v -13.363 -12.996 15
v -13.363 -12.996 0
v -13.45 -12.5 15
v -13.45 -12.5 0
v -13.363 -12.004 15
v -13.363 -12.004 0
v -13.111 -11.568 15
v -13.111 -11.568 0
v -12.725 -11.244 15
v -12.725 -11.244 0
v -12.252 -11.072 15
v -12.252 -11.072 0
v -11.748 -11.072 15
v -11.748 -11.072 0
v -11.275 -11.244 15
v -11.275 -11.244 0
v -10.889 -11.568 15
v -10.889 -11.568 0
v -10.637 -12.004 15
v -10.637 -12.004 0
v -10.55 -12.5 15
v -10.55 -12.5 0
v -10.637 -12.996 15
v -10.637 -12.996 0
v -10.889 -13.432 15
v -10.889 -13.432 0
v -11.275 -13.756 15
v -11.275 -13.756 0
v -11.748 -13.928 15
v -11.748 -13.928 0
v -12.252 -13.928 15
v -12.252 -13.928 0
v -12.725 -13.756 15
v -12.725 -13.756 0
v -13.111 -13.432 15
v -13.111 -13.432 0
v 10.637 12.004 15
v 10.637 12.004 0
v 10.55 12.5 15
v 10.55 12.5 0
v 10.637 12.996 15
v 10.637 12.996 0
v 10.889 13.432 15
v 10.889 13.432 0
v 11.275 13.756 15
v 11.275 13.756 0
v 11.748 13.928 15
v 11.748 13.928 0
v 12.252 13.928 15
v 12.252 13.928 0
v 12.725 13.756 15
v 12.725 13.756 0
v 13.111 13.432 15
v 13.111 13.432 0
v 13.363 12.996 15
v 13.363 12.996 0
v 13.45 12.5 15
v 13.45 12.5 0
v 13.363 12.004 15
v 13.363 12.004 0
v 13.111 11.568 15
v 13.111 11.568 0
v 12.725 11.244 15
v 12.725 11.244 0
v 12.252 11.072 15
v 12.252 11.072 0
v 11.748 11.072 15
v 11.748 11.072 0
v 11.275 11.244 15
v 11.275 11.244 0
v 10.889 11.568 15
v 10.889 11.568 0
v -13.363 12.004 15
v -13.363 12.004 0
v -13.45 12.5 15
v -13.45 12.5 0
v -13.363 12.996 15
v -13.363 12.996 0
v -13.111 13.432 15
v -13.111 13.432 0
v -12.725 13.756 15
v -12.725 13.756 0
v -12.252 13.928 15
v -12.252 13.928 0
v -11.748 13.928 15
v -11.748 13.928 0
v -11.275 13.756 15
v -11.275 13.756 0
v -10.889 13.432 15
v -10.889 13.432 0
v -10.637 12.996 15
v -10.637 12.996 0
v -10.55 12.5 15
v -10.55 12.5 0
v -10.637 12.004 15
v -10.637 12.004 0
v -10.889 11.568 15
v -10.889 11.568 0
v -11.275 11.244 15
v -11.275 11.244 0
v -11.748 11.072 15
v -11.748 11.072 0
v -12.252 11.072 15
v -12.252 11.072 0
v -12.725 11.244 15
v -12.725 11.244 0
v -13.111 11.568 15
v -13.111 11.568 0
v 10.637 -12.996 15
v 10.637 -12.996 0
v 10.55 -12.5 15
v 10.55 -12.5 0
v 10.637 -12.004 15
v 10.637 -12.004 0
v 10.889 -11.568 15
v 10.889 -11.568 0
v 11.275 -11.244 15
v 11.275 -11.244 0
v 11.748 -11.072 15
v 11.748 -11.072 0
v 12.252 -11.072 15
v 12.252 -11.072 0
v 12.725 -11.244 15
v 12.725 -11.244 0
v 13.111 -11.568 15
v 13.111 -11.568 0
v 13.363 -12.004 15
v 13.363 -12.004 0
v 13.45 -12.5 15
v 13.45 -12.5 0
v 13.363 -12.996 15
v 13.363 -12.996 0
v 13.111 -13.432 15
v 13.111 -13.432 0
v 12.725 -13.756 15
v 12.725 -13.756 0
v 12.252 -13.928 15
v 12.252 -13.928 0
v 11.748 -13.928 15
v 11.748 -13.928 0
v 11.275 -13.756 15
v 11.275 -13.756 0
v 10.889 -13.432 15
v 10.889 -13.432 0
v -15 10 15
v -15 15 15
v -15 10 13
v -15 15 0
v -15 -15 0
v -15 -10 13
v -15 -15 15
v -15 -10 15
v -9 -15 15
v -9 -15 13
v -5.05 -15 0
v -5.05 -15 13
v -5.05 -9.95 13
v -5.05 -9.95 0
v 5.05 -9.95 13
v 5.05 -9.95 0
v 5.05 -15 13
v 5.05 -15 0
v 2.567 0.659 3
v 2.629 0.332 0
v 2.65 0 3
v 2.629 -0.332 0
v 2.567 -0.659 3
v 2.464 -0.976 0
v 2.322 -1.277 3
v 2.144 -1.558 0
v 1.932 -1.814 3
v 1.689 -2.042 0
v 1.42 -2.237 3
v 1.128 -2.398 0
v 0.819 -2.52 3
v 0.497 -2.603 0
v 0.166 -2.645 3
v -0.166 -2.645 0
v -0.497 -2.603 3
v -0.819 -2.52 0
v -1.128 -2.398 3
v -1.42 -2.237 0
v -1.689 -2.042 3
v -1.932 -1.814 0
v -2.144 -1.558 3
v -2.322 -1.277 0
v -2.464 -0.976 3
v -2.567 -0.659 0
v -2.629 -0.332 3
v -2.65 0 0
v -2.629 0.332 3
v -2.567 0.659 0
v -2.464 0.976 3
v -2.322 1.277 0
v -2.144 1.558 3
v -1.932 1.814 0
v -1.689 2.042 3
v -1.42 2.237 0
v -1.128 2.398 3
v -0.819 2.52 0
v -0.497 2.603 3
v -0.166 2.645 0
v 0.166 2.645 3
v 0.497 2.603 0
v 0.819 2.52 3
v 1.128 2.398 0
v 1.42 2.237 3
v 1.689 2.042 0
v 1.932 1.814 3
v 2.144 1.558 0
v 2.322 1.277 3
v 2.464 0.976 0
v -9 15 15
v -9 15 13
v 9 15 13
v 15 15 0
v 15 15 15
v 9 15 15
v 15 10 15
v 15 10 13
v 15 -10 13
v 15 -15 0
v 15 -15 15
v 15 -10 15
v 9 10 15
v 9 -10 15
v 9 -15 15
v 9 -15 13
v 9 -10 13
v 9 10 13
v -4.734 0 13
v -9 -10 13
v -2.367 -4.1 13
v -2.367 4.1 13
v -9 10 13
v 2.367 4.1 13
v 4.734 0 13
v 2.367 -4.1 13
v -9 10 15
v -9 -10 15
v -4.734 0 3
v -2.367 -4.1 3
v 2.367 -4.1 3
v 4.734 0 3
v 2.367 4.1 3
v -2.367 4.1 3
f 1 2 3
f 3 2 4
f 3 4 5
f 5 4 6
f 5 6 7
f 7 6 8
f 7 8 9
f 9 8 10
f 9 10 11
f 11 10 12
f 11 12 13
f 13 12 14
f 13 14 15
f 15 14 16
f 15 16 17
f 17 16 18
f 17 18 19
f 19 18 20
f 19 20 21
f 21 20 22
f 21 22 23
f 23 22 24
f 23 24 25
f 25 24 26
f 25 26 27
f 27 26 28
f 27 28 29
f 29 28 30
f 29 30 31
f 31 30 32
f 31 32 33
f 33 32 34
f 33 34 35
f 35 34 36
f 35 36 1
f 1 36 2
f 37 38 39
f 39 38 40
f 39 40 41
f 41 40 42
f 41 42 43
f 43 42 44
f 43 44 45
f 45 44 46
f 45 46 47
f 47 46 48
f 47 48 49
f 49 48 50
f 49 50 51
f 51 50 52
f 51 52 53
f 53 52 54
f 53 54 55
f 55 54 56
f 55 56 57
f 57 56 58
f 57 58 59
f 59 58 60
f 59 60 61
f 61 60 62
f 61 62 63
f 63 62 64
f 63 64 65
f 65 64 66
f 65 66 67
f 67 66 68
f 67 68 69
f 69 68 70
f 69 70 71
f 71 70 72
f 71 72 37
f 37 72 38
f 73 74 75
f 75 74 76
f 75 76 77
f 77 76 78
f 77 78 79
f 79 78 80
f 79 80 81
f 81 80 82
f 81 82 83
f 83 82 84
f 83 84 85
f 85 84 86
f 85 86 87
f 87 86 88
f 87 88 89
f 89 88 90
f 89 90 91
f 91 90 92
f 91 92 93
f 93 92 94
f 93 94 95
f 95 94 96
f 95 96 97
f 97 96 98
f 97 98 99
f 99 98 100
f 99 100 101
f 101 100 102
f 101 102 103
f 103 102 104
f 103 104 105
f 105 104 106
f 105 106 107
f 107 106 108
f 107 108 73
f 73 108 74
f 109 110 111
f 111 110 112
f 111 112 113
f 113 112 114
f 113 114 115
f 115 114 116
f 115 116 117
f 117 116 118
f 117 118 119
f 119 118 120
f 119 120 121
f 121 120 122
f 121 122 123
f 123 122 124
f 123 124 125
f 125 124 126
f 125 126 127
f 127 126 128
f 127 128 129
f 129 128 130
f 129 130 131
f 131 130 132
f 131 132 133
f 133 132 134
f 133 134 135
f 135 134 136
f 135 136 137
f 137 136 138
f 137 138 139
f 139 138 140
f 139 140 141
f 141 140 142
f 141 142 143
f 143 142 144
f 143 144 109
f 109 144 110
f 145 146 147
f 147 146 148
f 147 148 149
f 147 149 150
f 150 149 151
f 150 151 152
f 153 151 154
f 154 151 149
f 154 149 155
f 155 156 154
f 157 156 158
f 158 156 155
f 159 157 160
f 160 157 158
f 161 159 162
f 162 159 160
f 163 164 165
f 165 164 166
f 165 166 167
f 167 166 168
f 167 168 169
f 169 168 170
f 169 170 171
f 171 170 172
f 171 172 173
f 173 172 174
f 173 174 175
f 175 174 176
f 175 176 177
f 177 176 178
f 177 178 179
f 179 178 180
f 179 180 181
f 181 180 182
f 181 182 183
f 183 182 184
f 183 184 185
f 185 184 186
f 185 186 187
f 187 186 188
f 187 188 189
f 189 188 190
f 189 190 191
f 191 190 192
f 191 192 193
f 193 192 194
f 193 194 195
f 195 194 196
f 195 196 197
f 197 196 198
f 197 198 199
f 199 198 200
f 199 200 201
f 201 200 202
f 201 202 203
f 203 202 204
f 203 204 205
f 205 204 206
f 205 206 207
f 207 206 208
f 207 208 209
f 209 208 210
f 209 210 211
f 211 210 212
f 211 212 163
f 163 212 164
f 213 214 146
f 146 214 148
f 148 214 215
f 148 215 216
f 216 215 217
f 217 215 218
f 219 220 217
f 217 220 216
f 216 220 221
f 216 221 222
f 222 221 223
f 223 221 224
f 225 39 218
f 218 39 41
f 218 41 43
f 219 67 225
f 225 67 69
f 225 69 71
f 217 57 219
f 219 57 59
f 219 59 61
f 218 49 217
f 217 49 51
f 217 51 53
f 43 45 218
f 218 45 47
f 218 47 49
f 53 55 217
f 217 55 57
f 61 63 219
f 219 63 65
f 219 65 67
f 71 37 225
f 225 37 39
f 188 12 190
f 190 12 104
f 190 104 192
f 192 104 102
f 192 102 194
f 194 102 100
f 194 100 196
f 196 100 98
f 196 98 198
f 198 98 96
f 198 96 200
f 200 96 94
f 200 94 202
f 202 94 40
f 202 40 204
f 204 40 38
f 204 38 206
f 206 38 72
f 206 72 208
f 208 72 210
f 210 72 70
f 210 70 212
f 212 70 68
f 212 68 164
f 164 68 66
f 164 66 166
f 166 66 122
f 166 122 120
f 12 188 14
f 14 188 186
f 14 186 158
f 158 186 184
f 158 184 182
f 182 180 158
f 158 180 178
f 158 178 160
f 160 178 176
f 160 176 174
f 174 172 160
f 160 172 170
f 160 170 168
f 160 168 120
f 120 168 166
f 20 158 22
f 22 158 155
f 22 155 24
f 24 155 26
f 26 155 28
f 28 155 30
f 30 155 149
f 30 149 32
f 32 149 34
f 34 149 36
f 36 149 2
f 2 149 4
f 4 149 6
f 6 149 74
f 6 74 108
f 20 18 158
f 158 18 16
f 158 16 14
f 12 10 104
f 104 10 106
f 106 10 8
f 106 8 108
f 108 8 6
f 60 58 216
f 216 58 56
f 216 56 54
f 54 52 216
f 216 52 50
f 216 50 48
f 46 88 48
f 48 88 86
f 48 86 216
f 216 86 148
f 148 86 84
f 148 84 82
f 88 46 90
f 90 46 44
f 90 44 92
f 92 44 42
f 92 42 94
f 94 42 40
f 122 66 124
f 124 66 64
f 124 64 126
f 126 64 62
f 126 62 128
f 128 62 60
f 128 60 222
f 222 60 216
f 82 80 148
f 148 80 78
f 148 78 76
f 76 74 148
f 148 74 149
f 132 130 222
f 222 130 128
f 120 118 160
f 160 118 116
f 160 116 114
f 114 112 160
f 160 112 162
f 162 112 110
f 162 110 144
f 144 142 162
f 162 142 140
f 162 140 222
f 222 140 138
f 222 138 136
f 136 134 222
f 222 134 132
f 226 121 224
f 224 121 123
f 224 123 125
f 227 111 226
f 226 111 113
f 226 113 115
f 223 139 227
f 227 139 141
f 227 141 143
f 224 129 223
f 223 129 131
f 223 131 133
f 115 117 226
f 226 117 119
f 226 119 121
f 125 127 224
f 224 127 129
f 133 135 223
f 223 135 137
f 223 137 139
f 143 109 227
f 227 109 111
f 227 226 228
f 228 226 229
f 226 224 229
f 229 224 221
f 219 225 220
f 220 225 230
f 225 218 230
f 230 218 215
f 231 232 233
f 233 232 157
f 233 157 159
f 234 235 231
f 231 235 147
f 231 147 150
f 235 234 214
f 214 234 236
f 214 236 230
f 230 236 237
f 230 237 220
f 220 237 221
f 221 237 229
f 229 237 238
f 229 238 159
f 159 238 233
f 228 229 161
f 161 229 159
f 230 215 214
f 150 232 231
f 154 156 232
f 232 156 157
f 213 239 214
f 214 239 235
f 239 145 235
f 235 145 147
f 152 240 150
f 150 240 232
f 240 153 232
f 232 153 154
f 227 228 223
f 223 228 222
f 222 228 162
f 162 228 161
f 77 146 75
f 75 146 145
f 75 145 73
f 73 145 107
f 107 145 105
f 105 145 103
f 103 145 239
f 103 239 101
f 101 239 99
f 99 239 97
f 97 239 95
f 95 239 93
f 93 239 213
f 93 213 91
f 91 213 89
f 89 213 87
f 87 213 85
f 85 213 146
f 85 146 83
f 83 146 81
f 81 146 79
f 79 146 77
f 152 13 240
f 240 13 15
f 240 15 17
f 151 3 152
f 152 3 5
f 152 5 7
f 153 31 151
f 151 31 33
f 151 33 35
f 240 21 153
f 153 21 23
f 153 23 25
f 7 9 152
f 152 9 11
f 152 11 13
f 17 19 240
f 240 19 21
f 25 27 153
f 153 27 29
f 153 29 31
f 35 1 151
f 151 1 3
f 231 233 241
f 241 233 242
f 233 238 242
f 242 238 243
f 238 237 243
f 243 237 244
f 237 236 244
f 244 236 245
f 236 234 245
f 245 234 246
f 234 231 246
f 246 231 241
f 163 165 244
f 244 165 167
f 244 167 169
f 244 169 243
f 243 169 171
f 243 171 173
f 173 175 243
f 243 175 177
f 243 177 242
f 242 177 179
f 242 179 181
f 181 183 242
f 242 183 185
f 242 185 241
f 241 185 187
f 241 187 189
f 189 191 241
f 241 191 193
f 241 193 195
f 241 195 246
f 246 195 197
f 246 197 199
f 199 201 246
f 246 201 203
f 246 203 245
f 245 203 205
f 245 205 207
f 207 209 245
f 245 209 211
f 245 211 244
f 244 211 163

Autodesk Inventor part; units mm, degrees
ref_plane "YZ Plane" through (0, 0, 0) normal (1, 0, 0) x (0, 1, 0)
ref_plane "XZ Plane" through (0, 0, 0) normal (0, 1, 0) x (-1, 0, 0)
ref_plane "XY Plane" through (0, 0, 0) normal (0, 0, 1) x (1, 0, 0)
sketch "Sketch1" plane through (0, 0, 0) normal (0, 0, 1) x (1, 0, 0)
  line L0 (-15, -15) -> (-15, 15)
  line L1 (-15, 15) -> (15, 15)
  line L2 (15, 15) -> (15, -15)
  line L3 (15, -15) -> (-15, 15) construction
  line L4 (-15, -15) -> (15, 15) construction
  line L5 (0, 0) -> (8.0802, 0) construction
  line L6 (0, 0) -> (0, 7.2946) construction
  line L7 (-5.05, -20.05) -> (5.05, -20.05)
  line L8 (5.05, -20.05) -> (5.05, -9.95)
  line L9 (5.05, -9.95) -> (-5.05, -9.95)
  line L10 (-5.05, -9.95) -> (-5.05, -20.05)
  line L11 (-5.05, -20.05) -> (5.05, -9.95) construction
  line L12 (5.05, -20.05) -> (-5.05, -9.95) construction
  line L13 (15, -15) -> (5.05, -15)
  line L14 (-5.05, -15) -> (-15, -15)
  point P0 (-12, -12.5)
  point P1 (12, -12.5)
  point P2 (-12, 12.5)
  point P3 (12, 12.5)
  point P4 (0, -15)
  dimension "d0" = 30
  dimension "d1" = 30
  dimension "d4" = 24
  dimension "d7" = 25
  dimension "d10" = 10.1
  dimension "d11" = 10.1
extrude "Extrusion1" add sketch "Sketch1" along normal blind 15 contours L0 L1 L2 L13 L8 L9 L10 L14
hole "Hole1" at (12, 12.5, 0) at (-12, 12.5, 0) at (-12, -12.5, 0) at (12, -12.5, 0) direction (0, 0, 1) diameter 2.9 end through all
sketch "Sketch2" plane through (0, 0, 0) normal (0, 0, -1) x (-1, 0, 0)
  point P0 (0, 0)
  point P1 (0, 0)
hole "Hole2" at (0, 0, 0) direction (0, 0, 1) diameter 5.3 end through all clearance for "Flat Head Machine Screw" size "M5" standard "Ansi Metric M Profile"
sketch "Sketch3" plane through (0, 0, 15) normal (0, 0, 1) x (1, 0, 0)
  line L0 (15, 15) -> (-15, 15) projected
  line L1 (-15, 15) -> (-9, 15)
  line L2 (-9, 15) -> (-9, 10)
  line L3 (-9, 10) -> (-15, 10)
  line L4 (-15, 10) -> (-15, 15)
  line L5 (15, -15) -> (15, 15) projected
  line L6 (15, 15) -> (9, 15)
  line L7 (9, 15) -> (9, 10)
  line L8 (9, 10) -> (15, 10)
  line L9 (15, 10) -> (15, 15)
  line L10 (-15, -15) -> (-5.05, -15) projected
  line L11 (-15, -15) -> (-9, -15)
  line L12 (-9, -15) -> (-9, -10)
  line L13 (-9, -10) -> (-15, -10)
  line L14 (-15, -10) -> (-15, -15)
  line L15 (15, -15) -> (9, -15)
  line L16 (9, -15) -> (9, -10)
  line L17 (9, -10) -> (15, -10)
  line L18 (15, -10) -> (15, -15)
  circle A0 centre (0, 0) radius 2.65 projected
  circle A1 centre (-12, -12.5) radius 1.45 projected
  circle A2 centre (12, 12.5) radius 1.45 projected
  circle A3 centre (-12, 12.5) radius 1.45 projected
  circle A4 centre (12, -12.5) radius 1.45 projected
  line L19 (15, 15) -> (-15, 15) projected
  line L20 (-15, 15) -> (-15, -15) projected
  line L21 (-15, -15) -> (-5.05, -15) projected
  line L22 (-5.05, -15) -> (-5.05, -9.95) projected
  line L23 (-5.05, -9.95) -> (5.05, -9.95) projected
  line L24 (5.05, -9.95) -> (5.05, -15) projected
  line L25 (5.05, -15) -> (15, -15) projected
  line L26 (15, -15) -> (15, 15) projected
  dimension "d28" = 6
  dimension "d29" = 5
  dimension "d30" = 6
  dimension "d31" = 5
  dimension "d32" = 6
  dimension "d33" = 5
extrude "Extrusion2" cut sketch "Sketch3" against normal blind 2 contours L7 L8 L5 L17 L16 L25 L24 L23 L22 L10 L12 L13 L20 L3 L2 L0
sketch "Sketch4" plane through (0, 0, 13) normal (0, 0, 1) x (1, 0, 0)
  line L0 (2.3671, 4.1) -> (4.7343, 0)
  line L1 (4.7343, 0) -> (2.3671, -4.1)
  line L2 (2.3671, -4.1) -> (-2.3671, -4.1)
  line L3 (-2.3671, -4.1) -> (-4.7343, 0)
  line L4 (-4.7343, 0) -> (-2.3671, 4.1)
  line L5 (-2.3671, 4.1) -> (2.3671, 4.1)
  point P0 (0, 0)
  point P1 (0, 0)
  dimension "d36" = 8.2
extrude "Extrusion3" cut sketch "Sketch4" against normal blind 10
properties part number "front_door-webcam(FIT0701)-mount"
